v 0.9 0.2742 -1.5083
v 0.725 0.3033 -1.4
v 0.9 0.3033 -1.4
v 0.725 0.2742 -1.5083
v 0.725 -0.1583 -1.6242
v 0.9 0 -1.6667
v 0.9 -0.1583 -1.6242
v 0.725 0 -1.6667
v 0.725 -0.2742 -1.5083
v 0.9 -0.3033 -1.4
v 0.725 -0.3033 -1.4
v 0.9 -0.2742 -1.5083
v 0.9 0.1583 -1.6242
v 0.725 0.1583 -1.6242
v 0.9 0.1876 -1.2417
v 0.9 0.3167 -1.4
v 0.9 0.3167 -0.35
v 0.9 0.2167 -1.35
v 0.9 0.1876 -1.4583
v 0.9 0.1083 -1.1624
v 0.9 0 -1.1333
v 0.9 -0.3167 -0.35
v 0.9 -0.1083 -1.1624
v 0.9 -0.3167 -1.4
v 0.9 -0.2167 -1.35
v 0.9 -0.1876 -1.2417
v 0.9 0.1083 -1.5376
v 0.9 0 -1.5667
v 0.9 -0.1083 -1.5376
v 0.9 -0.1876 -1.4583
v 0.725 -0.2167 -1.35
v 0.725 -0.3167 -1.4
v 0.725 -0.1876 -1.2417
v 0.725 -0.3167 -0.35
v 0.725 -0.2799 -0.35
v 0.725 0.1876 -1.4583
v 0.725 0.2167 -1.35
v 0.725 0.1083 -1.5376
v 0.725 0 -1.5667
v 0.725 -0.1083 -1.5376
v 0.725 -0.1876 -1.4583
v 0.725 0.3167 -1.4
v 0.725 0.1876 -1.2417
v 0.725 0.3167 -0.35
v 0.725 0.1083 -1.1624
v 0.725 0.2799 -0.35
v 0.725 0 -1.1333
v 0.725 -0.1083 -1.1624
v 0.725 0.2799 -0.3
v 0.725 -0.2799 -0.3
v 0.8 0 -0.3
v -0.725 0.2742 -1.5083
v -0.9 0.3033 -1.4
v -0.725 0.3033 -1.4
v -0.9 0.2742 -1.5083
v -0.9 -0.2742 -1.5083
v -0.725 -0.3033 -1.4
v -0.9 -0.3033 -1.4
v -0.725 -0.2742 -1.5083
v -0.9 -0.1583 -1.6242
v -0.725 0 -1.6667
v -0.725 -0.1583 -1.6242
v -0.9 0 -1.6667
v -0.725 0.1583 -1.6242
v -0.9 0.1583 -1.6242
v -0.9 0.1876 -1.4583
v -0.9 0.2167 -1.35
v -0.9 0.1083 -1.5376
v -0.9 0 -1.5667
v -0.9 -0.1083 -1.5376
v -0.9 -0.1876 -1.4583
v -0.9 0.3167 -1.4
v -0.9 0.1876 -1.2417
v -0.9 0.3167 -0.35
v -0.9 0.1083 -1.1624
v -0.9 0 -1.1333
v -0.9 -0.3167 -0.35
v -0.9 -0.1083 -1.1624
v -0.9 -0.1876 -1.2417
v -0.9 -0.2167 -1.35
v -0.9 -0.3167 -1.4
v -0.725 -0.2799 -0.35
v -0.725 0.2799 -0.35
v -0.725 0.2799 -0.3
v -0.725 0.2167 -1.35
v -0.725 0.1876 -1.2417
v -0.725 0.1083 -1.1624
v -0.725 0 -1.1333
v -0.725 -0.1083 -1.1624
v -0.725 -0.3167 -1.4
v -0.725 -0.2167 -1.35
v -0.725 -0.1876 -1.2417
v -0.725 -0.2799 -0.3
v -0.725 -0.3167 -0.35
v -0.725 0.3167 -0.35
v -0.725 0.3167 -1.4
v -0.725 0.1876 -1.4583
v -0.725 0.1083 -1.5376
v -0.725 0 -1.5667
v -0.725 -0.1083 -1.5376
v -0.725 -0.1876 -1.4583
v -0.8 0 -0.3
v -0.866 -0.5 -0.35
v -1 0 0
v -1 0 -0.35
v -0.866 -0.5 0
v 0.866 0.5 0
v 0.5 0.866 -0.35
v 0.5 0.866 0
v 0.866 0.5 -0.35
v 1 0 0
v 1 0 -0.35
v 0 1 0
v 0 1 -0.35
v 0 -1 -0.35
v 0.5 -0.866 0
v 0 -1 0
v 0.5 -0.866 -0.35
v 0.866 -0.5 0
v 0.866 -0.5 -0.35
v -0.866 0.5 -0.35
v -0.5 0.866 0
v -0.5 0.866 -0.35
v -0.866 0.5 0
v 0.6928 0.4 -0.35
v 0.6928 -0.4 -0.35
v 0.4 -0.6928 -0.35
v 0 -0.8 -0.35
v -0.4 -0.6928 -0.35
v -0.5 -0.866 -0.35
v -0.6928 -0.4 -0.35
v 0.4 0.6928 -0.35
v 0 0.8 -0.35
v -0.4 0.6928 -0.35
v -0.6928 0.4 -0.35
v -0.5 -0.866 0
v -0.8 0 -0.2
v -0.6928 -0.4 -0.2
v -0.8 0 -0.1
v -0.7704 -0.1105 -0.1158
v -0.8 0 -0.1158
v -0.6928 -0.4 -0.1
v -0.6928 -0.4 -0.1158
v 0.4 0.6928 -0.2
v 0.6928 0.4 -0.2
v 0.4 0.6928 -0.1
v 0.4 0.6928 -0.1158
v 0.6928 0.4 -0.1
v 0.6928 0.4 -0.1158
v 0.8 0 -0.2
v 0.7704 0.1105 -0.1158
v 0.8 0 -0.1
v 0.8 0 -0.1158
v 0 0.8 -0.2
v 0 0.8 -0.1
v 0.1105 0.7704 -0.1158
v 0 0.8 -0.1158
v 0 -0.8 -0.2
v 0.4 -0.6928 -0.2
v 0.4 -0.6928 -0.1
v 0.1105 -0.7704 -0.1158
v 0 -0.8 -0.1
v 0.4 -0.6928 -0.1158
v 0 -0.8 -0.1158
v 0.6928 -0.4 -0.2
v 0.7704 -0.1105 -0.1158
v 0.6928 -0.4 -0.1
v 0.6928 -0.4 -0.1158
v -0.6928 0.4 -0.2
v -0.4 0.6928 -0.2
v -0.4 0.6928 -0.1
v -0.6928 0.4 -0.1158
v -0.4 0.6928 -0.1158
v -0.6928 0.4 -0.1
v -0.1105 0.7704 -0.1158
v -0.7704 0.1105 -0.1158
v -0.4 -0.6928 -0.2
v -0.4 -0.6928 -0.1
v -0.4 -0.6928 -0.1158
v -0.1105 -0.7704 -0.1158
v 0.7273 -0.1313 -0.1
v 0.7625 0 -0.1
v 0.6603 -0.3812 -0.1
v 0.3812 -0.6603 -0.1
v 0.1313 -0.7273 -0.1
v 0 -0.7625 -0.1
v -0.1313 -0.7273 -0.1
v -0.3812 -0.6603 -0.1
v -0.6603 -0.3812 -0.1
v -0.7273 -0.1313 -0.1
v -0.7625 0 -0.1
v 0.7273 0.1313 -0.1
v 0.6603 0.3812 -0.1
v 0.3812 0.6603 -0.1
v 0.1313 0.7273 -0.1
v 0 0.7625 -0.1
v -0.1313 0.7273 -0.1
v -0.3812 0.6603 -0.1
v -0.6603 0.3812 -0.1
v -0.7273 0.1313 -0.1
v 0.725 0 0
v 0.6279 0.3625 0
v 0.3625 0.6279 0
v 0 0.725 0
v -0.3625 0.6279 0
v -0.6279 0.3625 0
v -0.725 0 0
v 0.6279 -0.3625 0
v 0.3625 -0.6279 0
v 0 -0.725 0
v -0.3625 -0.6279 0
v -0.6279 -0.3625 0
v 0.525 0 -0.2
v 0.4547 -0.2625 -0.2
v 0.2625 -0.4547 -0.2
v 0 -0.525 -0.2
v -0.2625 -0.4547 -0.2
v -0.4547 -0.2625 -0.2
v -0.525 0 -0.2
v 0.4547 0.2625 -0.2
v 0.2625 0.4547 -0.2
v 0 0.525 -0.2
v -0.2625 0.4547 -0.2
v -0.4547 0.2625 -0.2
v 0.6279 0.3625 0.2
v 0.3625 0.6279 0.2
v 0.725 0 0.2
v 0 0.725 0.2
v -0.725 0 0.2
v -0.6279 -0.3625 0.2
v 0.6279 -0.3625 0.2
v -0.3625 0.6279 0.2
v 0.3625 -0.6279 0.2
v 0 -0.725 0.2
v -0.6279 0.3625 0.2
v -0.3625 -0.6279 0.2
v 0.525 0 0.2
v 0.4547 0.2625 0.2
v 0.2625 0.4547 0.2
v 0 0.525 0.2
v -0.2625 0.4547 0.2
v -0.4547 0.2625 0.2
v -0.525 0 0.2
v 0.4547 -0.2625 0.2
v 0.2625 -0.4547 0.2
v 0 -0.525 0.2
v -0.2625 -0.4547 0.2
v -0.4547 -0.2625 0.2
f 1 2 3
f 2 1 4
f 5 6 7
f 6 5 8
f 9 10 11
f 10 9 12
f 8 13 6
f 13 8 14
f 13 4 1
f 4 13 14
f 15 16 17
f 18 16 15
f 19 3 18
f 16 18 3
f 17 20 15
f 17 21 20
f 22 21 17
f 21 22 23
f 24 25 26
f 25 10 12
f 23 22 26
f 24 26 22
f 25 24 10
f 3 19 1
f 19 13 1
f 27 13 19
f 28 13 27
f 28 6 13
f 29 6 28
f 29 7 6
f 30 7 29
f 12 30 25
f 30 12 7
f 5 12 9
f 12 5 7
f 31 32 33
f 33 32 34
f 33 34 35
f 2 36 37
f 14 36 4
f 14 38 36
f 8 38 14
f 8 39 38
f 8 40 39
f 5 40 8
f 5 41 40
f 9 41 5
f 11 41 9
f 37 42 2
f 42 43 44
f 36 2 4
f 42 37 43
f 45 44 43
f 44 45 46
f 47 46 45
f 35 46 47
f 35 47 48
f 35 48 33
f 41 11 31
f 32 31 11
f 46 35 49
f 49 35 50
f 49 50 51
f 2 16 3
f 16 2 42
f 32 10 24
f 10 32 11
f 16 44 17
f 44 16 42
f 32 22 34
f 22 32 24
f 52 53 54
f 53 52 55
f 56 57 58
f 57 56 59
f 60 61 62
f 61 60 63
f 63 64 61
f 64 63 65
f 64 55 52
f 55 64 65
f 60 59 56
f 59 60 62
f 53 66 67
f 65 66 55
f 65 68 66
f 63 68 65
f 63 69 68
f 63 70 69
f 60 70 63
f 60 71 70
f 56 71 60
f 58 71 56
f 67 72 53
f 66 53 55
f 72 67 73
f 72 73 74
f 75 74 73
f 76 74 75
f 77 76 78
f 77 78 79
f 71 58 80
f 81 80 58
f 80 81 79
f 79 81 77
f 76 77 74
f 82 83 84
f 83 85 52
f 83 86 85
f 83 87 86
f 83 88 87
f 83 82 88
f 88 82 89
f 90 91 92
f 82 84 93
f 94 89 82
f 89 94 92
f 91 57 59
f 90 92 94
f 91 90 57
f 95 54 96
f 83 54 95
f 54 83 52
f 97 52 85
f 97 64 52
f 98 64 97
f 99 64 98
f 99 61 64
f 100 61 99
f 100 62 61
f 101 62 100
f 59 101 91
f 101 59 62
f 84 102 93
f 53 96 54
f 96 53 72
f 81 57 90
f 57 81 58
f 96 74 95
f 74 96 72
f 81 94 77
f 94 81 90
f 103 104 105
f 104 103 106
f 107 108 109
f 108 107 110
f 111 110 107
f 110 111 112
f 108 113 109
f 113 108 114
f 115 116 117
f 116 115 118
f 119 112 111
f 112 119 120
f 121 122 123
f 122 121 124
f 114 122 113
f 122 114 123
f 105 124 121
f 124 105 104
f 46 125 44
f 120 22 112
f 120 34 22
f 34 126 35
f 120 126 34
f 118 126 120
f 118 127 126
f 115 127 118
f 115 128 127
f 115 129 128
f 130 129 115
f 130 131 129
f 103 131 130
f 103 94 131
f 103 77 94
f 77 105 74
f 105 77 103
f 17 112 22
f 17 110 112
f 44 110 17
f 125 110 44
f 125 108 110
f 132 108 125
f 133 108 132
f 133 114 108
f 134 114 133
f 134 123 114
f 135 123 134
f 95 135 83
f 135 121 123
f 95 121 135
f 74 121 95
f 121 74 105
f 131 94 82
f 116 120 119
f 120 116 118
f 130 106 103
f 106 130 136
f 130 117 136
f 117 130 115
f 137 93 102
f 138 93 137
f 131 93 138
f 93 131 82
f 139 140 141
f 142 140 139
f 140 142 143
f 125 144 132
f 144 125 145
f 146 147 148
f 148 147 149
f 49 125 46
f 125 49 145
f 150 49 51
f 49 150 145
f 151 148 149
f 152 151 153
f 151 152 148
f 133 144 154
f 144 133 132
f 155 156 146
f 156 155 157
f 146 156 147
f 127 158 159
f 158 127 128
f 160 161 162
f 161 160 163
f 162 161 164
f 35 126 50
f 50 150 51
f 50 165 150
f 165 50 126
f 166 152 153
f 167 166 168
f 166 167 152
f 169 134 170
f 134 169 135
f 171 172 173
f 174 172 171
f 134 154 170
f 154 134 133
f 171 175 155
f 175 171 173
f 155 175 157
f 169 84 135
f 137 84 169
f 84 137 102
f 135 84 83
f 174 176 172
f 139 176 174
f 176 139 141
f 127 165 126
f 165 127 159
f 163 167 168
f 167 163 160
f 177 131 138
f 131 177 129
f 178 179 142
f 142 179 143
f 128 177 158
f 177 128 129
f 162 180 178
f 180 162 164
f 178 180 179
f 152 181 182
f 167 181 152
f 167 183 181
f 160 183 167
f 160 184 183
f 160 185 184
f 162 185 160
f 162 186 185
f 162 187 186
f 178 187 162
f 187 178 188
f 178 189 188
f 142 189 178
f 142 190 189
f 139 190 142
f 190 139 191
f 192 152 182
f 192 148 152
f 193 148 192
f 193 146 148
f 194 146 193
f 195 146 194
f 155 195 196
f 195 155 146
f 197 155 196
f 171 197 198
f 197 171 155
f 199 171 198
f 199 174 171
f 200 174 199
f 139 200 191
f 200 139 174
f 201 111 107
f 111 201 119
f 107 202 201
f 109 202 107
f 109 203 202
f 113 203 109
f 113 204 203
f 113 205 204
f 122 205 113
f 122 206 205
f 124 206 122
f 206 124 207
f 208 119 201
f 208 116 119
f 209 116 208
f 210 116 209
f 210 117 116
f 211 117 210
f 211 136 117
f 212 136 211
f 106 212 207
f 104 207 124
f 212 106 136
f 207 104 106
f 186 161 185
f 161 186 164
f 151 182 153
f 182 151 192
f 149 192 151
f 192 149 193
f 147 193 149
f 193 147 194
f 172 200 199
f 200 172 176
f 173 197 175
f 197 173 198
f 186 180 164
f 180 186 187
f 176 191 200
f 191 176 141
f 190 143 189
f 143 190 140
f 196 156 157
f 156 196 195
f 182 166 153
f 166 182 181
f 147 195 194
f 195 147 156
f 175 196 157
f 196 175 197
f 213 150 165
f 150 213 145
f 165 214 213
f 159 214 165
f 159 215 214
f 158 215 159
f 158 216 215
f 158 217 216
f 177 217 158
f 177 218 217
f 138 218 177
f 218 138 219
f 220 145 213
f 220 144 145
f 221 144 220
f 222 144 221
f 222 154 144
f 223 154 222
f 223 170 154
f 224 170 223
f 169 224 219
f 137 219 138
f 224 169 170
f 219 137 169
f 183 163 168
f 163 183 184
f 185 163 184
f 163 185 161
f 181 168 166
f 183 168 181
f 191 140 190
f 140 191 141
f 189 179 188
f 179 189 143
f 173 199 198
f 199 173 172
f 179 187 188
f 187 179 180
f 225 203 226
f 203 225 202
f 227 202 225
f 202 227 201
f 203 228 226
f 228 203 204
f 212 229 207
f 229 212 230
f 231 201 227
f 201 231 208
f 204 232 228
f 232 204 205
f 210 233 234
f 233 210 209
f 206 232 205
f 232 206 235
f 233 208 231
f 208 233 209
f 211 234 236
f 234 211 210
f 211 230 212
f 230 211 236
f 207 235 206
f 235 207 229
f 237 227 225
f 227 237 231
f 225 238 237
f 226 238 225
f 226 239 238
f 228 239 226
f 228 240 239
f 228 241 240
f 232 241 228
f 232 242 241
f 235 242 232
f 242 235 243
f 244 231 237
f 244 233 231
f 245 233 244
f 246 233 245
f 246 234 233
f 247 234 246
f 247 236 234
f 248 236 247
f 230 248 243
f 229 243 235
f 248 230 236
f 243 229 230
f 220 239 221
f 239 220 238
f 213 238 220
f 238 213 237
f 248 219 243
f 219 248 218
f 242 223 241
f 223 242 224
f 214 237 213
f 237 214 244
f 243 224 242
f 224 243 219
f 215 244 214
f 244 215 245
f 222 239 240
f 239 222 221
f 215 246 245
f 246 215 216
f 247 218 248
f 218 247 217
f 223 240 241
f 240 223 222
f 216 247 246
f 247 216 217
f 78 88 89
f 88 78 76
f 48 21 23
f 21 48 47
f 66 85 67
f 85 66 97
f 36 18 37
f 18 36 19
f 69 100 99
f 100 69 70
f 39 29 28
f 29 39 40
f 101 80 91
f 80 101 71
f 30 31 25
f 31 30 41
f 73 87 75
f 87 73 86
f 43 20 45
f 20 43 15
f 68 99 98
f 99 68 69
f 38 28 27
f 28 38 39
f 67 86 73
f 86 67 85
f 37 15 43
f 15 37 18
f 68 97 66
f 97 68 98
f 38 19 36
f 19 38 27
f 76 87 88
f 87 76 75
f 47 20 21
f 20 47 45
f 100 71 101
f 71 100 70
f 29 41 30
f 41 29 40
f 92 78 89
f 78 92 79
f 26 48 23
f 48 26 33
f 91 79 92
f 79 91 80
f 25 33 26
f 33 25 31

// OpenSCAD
tolerance=0.075;
hole_radius=0.05;
grid_hole_radius=0.05;
outer_radius=1;
thickness=0.2;
hole_attach_height=0.05;
attach_thickness=0.1;
bottom_rotation_height=1.625;
top_rotation_height=1.35;
next_hole_radius=0.05;
next_hole_attach_height=0.05;
next_inner=0.8;
max_turn=90.0;
min_turn=90.0;
hole_twist=89.998;

//parameters that don't have to be defined explicitly
eps = tolerance/100;
inner_radius = outer_radius - thickness;
axle_offset = attach_thickness;
bottom_joint_attach_radius = outer_radius - hole_attach_height - grid_hole_radius*2 - thickness;
fn = 12;
fnh = 6;

//solve for b = axle height
max_turn_b = outer_radius / tan((180 - max_turn)/2);
min_turn_b = outer_radius / tan((180 - min_turn)/2);
axle_radius = bottom_joint_attach_radius/3;

grid_hole_height = hole_radius*2 + hole_attach_height * 2;
bottom_joint_grid_clearance = bottom_rotation_height - (hole_attach_height*2 + hole_radius*2 + grid_hole_height + max_turn_b + attach_thickness);

module angled_cylinder(angle_deg_y, _h, _r, angle_deg_x = 0) {
    rotate([angle_deg_x, angle_deg_y, 0]) { // Rotate the cylinder 
            cylinder(h = _h, r = _r, center = true, $fn = fnh);
        }
}

module joint_top() {
    operating_height = hole_attach_height*2 + attach_thickness + hole_radius*2 + grid_hole_height + bottom_joint_grid_clearance + max_turn_b;
    
    top_attach_height = axle_offset + axle_radius + max_turn_b;
    cyl_height = top_rotation_height - max_turn_b;

    difference() {
        translate([0,0, operating_height]) 
        difference() {
            union() {
                translate([0,0,- axle_radius - axle_offset + top_attach_height/2]) 
                {
                    
                    //attach points
                    axle_attach_thickness = outer_radius - thickness/2 - bottom_joint_attach_radius - tolerance ;
                    
                    attach_distance = bottom_joint_attach_radius + axle_attach_thickness/2 + tolerance;

                    translate([attach_distance, 0, 0]) {
                        translate([0,0,-top_attach_height/2 + axle_radius + axle_offset])
                        rotate([0,90,0])
                        cylinder(h=axle_attach_thickness,r=axle_radius + axle_offset,center=true, $fn = fn);
                        translate([0,0,(axle_radius + axle_offset)/2])
                    cube([axle_attach_thickness, (axle_radius + axle_offset)*2, top_attach_height - axle_offset - axle_radius + attach_thickness],center=true);
                    }
                    
                    translate([-attach_distance, 0, 0]) {
                        translate([0,0,-top_attach_height/2 + axle_radius + axle_offset])
                        rotate([0,90,0])
                        cylinder(h=axle_attach_thickness,r=axle_radius + axle_offset,center=true, $fn = fn);
                        translate([0,0,(axle_radius + axle_offset)/2])
                    cube([axle_attach_thickness, (axle_radius + axle_offset)*2, top_attach_height - axle_offset - axle_radius + attach_thickness],center=true);
                    }  
                    
                    //outer cylinder
                    translate([0,0,top_attach_height/2]) {
                        difference() {
                            cylinder(h=cyl_height,r=outer_radius,$fn=fn);
                            translate([0,0,-eps/2])
                            cylinder(h=cyl_height + eps,r=inner_radius,$fn=fn);
                        }
                        
                        //enforce min turn
                        translate([0,0,-(max_turn_b - min_turn_b)])
                        difference() {
                            cylinder(h=max_turn_b - min_turn_b,r=outer_radius,$fn=fn);
                            
                            translate([-outer_radius,-outer_radius,-eps/2])
                            cube([outer_radius*2,outer_radius - axle_radius - axle_offset + eps/2,max_turn_b - min_turn_b + eps]);
                            
                            translate([0,0,-eps/2])
                            cylinder(h=max_turn_b - min_turn_b + eps,r=inner_radius,$fn=fn);
                       }
                    }       
                } 
                
                
                //attachment segment
                translate([0,0,cyl_height + max_turn_b])
                difference() {
                        union() {
                            //attachment for smaller cylinder
                            translate([0,0,-attach_thickness])
                            cylinder(h=attach_thickness, r=outer_radius, $fn=fn);
                            translate([0,0,-attach_thickness*2])
                            cylinder(h=attach_thickness*2, r1=outer_radius, r2=next_inner - tolerance - thickness, $fn=fn);
                            
                            //small cylinder
                            cylinder(h=next_hole_radius*2 + next_hole_attach_height * 2, r = next_inner - tolerance, $fn=fn);
                        }
                        
                        //shelling
                        translate([0,0, -attach_thickness*2 - eps/2])
                        cylinder(h=next_hole_radius*2 + next_hole_attach_height * 2 + attach_thickness*2 + eps, r = min(inner_radius, next_inner - tolerance - thickness), $fn=fn);
                        
                        //holes for screws
//                        translate([0,0,next_hole_attach_height + next_hole_radius]) {
//                            angled_cylinder(0, (next_inner + thickness + eps) * 2,  next_hole_radius, 90);
//                            angled_cylinder(90, (next_inner + thickness + eps) * 2, next_hole_radius, 0);
//                        }
                    }

            }
            
            //holes for string routing
//             translate([0,-inner_radius + tolerance,max_turn_b]) 
//            rotate([90,0,0])
//            {
//                cylinder(h=thickness + inner_radius + tolerance,r=grid_hole_radius,$fn=fn);
//                translate([0,hole_attach_height + grid_hole_radius*2,0])
//                cylinder(h=thickness + inner_radius + tolerance,r=grid_hole_radius,$fn=fn);
//
//            }
//
//            translate([0,outer_radius + tolerance,min_turn_b])
//            rotate([90,0,0])
//            {
//                cylinder(h=thickness + inner_radius + tolerance,r=grid_hole_radius,$fn=fn);
//                translate([0,hole_attach_height + grid_hole_radius*2,0])
//                cylinder(h=thickness + inner_radius + tolerance,r=grid_hole_radius,$fn=fn);
//
//            }
             

        }

        //axle hole
        translate([0,0,operating_height])
        rotate([0,90,0])
        cylinder(h=outer_radius*2,r=axle_radius,center=true,$fn=fn);
        
    }
}

translate([0,0,-(bottom_rotation_height + top_rotation_height)])
joint_top();
